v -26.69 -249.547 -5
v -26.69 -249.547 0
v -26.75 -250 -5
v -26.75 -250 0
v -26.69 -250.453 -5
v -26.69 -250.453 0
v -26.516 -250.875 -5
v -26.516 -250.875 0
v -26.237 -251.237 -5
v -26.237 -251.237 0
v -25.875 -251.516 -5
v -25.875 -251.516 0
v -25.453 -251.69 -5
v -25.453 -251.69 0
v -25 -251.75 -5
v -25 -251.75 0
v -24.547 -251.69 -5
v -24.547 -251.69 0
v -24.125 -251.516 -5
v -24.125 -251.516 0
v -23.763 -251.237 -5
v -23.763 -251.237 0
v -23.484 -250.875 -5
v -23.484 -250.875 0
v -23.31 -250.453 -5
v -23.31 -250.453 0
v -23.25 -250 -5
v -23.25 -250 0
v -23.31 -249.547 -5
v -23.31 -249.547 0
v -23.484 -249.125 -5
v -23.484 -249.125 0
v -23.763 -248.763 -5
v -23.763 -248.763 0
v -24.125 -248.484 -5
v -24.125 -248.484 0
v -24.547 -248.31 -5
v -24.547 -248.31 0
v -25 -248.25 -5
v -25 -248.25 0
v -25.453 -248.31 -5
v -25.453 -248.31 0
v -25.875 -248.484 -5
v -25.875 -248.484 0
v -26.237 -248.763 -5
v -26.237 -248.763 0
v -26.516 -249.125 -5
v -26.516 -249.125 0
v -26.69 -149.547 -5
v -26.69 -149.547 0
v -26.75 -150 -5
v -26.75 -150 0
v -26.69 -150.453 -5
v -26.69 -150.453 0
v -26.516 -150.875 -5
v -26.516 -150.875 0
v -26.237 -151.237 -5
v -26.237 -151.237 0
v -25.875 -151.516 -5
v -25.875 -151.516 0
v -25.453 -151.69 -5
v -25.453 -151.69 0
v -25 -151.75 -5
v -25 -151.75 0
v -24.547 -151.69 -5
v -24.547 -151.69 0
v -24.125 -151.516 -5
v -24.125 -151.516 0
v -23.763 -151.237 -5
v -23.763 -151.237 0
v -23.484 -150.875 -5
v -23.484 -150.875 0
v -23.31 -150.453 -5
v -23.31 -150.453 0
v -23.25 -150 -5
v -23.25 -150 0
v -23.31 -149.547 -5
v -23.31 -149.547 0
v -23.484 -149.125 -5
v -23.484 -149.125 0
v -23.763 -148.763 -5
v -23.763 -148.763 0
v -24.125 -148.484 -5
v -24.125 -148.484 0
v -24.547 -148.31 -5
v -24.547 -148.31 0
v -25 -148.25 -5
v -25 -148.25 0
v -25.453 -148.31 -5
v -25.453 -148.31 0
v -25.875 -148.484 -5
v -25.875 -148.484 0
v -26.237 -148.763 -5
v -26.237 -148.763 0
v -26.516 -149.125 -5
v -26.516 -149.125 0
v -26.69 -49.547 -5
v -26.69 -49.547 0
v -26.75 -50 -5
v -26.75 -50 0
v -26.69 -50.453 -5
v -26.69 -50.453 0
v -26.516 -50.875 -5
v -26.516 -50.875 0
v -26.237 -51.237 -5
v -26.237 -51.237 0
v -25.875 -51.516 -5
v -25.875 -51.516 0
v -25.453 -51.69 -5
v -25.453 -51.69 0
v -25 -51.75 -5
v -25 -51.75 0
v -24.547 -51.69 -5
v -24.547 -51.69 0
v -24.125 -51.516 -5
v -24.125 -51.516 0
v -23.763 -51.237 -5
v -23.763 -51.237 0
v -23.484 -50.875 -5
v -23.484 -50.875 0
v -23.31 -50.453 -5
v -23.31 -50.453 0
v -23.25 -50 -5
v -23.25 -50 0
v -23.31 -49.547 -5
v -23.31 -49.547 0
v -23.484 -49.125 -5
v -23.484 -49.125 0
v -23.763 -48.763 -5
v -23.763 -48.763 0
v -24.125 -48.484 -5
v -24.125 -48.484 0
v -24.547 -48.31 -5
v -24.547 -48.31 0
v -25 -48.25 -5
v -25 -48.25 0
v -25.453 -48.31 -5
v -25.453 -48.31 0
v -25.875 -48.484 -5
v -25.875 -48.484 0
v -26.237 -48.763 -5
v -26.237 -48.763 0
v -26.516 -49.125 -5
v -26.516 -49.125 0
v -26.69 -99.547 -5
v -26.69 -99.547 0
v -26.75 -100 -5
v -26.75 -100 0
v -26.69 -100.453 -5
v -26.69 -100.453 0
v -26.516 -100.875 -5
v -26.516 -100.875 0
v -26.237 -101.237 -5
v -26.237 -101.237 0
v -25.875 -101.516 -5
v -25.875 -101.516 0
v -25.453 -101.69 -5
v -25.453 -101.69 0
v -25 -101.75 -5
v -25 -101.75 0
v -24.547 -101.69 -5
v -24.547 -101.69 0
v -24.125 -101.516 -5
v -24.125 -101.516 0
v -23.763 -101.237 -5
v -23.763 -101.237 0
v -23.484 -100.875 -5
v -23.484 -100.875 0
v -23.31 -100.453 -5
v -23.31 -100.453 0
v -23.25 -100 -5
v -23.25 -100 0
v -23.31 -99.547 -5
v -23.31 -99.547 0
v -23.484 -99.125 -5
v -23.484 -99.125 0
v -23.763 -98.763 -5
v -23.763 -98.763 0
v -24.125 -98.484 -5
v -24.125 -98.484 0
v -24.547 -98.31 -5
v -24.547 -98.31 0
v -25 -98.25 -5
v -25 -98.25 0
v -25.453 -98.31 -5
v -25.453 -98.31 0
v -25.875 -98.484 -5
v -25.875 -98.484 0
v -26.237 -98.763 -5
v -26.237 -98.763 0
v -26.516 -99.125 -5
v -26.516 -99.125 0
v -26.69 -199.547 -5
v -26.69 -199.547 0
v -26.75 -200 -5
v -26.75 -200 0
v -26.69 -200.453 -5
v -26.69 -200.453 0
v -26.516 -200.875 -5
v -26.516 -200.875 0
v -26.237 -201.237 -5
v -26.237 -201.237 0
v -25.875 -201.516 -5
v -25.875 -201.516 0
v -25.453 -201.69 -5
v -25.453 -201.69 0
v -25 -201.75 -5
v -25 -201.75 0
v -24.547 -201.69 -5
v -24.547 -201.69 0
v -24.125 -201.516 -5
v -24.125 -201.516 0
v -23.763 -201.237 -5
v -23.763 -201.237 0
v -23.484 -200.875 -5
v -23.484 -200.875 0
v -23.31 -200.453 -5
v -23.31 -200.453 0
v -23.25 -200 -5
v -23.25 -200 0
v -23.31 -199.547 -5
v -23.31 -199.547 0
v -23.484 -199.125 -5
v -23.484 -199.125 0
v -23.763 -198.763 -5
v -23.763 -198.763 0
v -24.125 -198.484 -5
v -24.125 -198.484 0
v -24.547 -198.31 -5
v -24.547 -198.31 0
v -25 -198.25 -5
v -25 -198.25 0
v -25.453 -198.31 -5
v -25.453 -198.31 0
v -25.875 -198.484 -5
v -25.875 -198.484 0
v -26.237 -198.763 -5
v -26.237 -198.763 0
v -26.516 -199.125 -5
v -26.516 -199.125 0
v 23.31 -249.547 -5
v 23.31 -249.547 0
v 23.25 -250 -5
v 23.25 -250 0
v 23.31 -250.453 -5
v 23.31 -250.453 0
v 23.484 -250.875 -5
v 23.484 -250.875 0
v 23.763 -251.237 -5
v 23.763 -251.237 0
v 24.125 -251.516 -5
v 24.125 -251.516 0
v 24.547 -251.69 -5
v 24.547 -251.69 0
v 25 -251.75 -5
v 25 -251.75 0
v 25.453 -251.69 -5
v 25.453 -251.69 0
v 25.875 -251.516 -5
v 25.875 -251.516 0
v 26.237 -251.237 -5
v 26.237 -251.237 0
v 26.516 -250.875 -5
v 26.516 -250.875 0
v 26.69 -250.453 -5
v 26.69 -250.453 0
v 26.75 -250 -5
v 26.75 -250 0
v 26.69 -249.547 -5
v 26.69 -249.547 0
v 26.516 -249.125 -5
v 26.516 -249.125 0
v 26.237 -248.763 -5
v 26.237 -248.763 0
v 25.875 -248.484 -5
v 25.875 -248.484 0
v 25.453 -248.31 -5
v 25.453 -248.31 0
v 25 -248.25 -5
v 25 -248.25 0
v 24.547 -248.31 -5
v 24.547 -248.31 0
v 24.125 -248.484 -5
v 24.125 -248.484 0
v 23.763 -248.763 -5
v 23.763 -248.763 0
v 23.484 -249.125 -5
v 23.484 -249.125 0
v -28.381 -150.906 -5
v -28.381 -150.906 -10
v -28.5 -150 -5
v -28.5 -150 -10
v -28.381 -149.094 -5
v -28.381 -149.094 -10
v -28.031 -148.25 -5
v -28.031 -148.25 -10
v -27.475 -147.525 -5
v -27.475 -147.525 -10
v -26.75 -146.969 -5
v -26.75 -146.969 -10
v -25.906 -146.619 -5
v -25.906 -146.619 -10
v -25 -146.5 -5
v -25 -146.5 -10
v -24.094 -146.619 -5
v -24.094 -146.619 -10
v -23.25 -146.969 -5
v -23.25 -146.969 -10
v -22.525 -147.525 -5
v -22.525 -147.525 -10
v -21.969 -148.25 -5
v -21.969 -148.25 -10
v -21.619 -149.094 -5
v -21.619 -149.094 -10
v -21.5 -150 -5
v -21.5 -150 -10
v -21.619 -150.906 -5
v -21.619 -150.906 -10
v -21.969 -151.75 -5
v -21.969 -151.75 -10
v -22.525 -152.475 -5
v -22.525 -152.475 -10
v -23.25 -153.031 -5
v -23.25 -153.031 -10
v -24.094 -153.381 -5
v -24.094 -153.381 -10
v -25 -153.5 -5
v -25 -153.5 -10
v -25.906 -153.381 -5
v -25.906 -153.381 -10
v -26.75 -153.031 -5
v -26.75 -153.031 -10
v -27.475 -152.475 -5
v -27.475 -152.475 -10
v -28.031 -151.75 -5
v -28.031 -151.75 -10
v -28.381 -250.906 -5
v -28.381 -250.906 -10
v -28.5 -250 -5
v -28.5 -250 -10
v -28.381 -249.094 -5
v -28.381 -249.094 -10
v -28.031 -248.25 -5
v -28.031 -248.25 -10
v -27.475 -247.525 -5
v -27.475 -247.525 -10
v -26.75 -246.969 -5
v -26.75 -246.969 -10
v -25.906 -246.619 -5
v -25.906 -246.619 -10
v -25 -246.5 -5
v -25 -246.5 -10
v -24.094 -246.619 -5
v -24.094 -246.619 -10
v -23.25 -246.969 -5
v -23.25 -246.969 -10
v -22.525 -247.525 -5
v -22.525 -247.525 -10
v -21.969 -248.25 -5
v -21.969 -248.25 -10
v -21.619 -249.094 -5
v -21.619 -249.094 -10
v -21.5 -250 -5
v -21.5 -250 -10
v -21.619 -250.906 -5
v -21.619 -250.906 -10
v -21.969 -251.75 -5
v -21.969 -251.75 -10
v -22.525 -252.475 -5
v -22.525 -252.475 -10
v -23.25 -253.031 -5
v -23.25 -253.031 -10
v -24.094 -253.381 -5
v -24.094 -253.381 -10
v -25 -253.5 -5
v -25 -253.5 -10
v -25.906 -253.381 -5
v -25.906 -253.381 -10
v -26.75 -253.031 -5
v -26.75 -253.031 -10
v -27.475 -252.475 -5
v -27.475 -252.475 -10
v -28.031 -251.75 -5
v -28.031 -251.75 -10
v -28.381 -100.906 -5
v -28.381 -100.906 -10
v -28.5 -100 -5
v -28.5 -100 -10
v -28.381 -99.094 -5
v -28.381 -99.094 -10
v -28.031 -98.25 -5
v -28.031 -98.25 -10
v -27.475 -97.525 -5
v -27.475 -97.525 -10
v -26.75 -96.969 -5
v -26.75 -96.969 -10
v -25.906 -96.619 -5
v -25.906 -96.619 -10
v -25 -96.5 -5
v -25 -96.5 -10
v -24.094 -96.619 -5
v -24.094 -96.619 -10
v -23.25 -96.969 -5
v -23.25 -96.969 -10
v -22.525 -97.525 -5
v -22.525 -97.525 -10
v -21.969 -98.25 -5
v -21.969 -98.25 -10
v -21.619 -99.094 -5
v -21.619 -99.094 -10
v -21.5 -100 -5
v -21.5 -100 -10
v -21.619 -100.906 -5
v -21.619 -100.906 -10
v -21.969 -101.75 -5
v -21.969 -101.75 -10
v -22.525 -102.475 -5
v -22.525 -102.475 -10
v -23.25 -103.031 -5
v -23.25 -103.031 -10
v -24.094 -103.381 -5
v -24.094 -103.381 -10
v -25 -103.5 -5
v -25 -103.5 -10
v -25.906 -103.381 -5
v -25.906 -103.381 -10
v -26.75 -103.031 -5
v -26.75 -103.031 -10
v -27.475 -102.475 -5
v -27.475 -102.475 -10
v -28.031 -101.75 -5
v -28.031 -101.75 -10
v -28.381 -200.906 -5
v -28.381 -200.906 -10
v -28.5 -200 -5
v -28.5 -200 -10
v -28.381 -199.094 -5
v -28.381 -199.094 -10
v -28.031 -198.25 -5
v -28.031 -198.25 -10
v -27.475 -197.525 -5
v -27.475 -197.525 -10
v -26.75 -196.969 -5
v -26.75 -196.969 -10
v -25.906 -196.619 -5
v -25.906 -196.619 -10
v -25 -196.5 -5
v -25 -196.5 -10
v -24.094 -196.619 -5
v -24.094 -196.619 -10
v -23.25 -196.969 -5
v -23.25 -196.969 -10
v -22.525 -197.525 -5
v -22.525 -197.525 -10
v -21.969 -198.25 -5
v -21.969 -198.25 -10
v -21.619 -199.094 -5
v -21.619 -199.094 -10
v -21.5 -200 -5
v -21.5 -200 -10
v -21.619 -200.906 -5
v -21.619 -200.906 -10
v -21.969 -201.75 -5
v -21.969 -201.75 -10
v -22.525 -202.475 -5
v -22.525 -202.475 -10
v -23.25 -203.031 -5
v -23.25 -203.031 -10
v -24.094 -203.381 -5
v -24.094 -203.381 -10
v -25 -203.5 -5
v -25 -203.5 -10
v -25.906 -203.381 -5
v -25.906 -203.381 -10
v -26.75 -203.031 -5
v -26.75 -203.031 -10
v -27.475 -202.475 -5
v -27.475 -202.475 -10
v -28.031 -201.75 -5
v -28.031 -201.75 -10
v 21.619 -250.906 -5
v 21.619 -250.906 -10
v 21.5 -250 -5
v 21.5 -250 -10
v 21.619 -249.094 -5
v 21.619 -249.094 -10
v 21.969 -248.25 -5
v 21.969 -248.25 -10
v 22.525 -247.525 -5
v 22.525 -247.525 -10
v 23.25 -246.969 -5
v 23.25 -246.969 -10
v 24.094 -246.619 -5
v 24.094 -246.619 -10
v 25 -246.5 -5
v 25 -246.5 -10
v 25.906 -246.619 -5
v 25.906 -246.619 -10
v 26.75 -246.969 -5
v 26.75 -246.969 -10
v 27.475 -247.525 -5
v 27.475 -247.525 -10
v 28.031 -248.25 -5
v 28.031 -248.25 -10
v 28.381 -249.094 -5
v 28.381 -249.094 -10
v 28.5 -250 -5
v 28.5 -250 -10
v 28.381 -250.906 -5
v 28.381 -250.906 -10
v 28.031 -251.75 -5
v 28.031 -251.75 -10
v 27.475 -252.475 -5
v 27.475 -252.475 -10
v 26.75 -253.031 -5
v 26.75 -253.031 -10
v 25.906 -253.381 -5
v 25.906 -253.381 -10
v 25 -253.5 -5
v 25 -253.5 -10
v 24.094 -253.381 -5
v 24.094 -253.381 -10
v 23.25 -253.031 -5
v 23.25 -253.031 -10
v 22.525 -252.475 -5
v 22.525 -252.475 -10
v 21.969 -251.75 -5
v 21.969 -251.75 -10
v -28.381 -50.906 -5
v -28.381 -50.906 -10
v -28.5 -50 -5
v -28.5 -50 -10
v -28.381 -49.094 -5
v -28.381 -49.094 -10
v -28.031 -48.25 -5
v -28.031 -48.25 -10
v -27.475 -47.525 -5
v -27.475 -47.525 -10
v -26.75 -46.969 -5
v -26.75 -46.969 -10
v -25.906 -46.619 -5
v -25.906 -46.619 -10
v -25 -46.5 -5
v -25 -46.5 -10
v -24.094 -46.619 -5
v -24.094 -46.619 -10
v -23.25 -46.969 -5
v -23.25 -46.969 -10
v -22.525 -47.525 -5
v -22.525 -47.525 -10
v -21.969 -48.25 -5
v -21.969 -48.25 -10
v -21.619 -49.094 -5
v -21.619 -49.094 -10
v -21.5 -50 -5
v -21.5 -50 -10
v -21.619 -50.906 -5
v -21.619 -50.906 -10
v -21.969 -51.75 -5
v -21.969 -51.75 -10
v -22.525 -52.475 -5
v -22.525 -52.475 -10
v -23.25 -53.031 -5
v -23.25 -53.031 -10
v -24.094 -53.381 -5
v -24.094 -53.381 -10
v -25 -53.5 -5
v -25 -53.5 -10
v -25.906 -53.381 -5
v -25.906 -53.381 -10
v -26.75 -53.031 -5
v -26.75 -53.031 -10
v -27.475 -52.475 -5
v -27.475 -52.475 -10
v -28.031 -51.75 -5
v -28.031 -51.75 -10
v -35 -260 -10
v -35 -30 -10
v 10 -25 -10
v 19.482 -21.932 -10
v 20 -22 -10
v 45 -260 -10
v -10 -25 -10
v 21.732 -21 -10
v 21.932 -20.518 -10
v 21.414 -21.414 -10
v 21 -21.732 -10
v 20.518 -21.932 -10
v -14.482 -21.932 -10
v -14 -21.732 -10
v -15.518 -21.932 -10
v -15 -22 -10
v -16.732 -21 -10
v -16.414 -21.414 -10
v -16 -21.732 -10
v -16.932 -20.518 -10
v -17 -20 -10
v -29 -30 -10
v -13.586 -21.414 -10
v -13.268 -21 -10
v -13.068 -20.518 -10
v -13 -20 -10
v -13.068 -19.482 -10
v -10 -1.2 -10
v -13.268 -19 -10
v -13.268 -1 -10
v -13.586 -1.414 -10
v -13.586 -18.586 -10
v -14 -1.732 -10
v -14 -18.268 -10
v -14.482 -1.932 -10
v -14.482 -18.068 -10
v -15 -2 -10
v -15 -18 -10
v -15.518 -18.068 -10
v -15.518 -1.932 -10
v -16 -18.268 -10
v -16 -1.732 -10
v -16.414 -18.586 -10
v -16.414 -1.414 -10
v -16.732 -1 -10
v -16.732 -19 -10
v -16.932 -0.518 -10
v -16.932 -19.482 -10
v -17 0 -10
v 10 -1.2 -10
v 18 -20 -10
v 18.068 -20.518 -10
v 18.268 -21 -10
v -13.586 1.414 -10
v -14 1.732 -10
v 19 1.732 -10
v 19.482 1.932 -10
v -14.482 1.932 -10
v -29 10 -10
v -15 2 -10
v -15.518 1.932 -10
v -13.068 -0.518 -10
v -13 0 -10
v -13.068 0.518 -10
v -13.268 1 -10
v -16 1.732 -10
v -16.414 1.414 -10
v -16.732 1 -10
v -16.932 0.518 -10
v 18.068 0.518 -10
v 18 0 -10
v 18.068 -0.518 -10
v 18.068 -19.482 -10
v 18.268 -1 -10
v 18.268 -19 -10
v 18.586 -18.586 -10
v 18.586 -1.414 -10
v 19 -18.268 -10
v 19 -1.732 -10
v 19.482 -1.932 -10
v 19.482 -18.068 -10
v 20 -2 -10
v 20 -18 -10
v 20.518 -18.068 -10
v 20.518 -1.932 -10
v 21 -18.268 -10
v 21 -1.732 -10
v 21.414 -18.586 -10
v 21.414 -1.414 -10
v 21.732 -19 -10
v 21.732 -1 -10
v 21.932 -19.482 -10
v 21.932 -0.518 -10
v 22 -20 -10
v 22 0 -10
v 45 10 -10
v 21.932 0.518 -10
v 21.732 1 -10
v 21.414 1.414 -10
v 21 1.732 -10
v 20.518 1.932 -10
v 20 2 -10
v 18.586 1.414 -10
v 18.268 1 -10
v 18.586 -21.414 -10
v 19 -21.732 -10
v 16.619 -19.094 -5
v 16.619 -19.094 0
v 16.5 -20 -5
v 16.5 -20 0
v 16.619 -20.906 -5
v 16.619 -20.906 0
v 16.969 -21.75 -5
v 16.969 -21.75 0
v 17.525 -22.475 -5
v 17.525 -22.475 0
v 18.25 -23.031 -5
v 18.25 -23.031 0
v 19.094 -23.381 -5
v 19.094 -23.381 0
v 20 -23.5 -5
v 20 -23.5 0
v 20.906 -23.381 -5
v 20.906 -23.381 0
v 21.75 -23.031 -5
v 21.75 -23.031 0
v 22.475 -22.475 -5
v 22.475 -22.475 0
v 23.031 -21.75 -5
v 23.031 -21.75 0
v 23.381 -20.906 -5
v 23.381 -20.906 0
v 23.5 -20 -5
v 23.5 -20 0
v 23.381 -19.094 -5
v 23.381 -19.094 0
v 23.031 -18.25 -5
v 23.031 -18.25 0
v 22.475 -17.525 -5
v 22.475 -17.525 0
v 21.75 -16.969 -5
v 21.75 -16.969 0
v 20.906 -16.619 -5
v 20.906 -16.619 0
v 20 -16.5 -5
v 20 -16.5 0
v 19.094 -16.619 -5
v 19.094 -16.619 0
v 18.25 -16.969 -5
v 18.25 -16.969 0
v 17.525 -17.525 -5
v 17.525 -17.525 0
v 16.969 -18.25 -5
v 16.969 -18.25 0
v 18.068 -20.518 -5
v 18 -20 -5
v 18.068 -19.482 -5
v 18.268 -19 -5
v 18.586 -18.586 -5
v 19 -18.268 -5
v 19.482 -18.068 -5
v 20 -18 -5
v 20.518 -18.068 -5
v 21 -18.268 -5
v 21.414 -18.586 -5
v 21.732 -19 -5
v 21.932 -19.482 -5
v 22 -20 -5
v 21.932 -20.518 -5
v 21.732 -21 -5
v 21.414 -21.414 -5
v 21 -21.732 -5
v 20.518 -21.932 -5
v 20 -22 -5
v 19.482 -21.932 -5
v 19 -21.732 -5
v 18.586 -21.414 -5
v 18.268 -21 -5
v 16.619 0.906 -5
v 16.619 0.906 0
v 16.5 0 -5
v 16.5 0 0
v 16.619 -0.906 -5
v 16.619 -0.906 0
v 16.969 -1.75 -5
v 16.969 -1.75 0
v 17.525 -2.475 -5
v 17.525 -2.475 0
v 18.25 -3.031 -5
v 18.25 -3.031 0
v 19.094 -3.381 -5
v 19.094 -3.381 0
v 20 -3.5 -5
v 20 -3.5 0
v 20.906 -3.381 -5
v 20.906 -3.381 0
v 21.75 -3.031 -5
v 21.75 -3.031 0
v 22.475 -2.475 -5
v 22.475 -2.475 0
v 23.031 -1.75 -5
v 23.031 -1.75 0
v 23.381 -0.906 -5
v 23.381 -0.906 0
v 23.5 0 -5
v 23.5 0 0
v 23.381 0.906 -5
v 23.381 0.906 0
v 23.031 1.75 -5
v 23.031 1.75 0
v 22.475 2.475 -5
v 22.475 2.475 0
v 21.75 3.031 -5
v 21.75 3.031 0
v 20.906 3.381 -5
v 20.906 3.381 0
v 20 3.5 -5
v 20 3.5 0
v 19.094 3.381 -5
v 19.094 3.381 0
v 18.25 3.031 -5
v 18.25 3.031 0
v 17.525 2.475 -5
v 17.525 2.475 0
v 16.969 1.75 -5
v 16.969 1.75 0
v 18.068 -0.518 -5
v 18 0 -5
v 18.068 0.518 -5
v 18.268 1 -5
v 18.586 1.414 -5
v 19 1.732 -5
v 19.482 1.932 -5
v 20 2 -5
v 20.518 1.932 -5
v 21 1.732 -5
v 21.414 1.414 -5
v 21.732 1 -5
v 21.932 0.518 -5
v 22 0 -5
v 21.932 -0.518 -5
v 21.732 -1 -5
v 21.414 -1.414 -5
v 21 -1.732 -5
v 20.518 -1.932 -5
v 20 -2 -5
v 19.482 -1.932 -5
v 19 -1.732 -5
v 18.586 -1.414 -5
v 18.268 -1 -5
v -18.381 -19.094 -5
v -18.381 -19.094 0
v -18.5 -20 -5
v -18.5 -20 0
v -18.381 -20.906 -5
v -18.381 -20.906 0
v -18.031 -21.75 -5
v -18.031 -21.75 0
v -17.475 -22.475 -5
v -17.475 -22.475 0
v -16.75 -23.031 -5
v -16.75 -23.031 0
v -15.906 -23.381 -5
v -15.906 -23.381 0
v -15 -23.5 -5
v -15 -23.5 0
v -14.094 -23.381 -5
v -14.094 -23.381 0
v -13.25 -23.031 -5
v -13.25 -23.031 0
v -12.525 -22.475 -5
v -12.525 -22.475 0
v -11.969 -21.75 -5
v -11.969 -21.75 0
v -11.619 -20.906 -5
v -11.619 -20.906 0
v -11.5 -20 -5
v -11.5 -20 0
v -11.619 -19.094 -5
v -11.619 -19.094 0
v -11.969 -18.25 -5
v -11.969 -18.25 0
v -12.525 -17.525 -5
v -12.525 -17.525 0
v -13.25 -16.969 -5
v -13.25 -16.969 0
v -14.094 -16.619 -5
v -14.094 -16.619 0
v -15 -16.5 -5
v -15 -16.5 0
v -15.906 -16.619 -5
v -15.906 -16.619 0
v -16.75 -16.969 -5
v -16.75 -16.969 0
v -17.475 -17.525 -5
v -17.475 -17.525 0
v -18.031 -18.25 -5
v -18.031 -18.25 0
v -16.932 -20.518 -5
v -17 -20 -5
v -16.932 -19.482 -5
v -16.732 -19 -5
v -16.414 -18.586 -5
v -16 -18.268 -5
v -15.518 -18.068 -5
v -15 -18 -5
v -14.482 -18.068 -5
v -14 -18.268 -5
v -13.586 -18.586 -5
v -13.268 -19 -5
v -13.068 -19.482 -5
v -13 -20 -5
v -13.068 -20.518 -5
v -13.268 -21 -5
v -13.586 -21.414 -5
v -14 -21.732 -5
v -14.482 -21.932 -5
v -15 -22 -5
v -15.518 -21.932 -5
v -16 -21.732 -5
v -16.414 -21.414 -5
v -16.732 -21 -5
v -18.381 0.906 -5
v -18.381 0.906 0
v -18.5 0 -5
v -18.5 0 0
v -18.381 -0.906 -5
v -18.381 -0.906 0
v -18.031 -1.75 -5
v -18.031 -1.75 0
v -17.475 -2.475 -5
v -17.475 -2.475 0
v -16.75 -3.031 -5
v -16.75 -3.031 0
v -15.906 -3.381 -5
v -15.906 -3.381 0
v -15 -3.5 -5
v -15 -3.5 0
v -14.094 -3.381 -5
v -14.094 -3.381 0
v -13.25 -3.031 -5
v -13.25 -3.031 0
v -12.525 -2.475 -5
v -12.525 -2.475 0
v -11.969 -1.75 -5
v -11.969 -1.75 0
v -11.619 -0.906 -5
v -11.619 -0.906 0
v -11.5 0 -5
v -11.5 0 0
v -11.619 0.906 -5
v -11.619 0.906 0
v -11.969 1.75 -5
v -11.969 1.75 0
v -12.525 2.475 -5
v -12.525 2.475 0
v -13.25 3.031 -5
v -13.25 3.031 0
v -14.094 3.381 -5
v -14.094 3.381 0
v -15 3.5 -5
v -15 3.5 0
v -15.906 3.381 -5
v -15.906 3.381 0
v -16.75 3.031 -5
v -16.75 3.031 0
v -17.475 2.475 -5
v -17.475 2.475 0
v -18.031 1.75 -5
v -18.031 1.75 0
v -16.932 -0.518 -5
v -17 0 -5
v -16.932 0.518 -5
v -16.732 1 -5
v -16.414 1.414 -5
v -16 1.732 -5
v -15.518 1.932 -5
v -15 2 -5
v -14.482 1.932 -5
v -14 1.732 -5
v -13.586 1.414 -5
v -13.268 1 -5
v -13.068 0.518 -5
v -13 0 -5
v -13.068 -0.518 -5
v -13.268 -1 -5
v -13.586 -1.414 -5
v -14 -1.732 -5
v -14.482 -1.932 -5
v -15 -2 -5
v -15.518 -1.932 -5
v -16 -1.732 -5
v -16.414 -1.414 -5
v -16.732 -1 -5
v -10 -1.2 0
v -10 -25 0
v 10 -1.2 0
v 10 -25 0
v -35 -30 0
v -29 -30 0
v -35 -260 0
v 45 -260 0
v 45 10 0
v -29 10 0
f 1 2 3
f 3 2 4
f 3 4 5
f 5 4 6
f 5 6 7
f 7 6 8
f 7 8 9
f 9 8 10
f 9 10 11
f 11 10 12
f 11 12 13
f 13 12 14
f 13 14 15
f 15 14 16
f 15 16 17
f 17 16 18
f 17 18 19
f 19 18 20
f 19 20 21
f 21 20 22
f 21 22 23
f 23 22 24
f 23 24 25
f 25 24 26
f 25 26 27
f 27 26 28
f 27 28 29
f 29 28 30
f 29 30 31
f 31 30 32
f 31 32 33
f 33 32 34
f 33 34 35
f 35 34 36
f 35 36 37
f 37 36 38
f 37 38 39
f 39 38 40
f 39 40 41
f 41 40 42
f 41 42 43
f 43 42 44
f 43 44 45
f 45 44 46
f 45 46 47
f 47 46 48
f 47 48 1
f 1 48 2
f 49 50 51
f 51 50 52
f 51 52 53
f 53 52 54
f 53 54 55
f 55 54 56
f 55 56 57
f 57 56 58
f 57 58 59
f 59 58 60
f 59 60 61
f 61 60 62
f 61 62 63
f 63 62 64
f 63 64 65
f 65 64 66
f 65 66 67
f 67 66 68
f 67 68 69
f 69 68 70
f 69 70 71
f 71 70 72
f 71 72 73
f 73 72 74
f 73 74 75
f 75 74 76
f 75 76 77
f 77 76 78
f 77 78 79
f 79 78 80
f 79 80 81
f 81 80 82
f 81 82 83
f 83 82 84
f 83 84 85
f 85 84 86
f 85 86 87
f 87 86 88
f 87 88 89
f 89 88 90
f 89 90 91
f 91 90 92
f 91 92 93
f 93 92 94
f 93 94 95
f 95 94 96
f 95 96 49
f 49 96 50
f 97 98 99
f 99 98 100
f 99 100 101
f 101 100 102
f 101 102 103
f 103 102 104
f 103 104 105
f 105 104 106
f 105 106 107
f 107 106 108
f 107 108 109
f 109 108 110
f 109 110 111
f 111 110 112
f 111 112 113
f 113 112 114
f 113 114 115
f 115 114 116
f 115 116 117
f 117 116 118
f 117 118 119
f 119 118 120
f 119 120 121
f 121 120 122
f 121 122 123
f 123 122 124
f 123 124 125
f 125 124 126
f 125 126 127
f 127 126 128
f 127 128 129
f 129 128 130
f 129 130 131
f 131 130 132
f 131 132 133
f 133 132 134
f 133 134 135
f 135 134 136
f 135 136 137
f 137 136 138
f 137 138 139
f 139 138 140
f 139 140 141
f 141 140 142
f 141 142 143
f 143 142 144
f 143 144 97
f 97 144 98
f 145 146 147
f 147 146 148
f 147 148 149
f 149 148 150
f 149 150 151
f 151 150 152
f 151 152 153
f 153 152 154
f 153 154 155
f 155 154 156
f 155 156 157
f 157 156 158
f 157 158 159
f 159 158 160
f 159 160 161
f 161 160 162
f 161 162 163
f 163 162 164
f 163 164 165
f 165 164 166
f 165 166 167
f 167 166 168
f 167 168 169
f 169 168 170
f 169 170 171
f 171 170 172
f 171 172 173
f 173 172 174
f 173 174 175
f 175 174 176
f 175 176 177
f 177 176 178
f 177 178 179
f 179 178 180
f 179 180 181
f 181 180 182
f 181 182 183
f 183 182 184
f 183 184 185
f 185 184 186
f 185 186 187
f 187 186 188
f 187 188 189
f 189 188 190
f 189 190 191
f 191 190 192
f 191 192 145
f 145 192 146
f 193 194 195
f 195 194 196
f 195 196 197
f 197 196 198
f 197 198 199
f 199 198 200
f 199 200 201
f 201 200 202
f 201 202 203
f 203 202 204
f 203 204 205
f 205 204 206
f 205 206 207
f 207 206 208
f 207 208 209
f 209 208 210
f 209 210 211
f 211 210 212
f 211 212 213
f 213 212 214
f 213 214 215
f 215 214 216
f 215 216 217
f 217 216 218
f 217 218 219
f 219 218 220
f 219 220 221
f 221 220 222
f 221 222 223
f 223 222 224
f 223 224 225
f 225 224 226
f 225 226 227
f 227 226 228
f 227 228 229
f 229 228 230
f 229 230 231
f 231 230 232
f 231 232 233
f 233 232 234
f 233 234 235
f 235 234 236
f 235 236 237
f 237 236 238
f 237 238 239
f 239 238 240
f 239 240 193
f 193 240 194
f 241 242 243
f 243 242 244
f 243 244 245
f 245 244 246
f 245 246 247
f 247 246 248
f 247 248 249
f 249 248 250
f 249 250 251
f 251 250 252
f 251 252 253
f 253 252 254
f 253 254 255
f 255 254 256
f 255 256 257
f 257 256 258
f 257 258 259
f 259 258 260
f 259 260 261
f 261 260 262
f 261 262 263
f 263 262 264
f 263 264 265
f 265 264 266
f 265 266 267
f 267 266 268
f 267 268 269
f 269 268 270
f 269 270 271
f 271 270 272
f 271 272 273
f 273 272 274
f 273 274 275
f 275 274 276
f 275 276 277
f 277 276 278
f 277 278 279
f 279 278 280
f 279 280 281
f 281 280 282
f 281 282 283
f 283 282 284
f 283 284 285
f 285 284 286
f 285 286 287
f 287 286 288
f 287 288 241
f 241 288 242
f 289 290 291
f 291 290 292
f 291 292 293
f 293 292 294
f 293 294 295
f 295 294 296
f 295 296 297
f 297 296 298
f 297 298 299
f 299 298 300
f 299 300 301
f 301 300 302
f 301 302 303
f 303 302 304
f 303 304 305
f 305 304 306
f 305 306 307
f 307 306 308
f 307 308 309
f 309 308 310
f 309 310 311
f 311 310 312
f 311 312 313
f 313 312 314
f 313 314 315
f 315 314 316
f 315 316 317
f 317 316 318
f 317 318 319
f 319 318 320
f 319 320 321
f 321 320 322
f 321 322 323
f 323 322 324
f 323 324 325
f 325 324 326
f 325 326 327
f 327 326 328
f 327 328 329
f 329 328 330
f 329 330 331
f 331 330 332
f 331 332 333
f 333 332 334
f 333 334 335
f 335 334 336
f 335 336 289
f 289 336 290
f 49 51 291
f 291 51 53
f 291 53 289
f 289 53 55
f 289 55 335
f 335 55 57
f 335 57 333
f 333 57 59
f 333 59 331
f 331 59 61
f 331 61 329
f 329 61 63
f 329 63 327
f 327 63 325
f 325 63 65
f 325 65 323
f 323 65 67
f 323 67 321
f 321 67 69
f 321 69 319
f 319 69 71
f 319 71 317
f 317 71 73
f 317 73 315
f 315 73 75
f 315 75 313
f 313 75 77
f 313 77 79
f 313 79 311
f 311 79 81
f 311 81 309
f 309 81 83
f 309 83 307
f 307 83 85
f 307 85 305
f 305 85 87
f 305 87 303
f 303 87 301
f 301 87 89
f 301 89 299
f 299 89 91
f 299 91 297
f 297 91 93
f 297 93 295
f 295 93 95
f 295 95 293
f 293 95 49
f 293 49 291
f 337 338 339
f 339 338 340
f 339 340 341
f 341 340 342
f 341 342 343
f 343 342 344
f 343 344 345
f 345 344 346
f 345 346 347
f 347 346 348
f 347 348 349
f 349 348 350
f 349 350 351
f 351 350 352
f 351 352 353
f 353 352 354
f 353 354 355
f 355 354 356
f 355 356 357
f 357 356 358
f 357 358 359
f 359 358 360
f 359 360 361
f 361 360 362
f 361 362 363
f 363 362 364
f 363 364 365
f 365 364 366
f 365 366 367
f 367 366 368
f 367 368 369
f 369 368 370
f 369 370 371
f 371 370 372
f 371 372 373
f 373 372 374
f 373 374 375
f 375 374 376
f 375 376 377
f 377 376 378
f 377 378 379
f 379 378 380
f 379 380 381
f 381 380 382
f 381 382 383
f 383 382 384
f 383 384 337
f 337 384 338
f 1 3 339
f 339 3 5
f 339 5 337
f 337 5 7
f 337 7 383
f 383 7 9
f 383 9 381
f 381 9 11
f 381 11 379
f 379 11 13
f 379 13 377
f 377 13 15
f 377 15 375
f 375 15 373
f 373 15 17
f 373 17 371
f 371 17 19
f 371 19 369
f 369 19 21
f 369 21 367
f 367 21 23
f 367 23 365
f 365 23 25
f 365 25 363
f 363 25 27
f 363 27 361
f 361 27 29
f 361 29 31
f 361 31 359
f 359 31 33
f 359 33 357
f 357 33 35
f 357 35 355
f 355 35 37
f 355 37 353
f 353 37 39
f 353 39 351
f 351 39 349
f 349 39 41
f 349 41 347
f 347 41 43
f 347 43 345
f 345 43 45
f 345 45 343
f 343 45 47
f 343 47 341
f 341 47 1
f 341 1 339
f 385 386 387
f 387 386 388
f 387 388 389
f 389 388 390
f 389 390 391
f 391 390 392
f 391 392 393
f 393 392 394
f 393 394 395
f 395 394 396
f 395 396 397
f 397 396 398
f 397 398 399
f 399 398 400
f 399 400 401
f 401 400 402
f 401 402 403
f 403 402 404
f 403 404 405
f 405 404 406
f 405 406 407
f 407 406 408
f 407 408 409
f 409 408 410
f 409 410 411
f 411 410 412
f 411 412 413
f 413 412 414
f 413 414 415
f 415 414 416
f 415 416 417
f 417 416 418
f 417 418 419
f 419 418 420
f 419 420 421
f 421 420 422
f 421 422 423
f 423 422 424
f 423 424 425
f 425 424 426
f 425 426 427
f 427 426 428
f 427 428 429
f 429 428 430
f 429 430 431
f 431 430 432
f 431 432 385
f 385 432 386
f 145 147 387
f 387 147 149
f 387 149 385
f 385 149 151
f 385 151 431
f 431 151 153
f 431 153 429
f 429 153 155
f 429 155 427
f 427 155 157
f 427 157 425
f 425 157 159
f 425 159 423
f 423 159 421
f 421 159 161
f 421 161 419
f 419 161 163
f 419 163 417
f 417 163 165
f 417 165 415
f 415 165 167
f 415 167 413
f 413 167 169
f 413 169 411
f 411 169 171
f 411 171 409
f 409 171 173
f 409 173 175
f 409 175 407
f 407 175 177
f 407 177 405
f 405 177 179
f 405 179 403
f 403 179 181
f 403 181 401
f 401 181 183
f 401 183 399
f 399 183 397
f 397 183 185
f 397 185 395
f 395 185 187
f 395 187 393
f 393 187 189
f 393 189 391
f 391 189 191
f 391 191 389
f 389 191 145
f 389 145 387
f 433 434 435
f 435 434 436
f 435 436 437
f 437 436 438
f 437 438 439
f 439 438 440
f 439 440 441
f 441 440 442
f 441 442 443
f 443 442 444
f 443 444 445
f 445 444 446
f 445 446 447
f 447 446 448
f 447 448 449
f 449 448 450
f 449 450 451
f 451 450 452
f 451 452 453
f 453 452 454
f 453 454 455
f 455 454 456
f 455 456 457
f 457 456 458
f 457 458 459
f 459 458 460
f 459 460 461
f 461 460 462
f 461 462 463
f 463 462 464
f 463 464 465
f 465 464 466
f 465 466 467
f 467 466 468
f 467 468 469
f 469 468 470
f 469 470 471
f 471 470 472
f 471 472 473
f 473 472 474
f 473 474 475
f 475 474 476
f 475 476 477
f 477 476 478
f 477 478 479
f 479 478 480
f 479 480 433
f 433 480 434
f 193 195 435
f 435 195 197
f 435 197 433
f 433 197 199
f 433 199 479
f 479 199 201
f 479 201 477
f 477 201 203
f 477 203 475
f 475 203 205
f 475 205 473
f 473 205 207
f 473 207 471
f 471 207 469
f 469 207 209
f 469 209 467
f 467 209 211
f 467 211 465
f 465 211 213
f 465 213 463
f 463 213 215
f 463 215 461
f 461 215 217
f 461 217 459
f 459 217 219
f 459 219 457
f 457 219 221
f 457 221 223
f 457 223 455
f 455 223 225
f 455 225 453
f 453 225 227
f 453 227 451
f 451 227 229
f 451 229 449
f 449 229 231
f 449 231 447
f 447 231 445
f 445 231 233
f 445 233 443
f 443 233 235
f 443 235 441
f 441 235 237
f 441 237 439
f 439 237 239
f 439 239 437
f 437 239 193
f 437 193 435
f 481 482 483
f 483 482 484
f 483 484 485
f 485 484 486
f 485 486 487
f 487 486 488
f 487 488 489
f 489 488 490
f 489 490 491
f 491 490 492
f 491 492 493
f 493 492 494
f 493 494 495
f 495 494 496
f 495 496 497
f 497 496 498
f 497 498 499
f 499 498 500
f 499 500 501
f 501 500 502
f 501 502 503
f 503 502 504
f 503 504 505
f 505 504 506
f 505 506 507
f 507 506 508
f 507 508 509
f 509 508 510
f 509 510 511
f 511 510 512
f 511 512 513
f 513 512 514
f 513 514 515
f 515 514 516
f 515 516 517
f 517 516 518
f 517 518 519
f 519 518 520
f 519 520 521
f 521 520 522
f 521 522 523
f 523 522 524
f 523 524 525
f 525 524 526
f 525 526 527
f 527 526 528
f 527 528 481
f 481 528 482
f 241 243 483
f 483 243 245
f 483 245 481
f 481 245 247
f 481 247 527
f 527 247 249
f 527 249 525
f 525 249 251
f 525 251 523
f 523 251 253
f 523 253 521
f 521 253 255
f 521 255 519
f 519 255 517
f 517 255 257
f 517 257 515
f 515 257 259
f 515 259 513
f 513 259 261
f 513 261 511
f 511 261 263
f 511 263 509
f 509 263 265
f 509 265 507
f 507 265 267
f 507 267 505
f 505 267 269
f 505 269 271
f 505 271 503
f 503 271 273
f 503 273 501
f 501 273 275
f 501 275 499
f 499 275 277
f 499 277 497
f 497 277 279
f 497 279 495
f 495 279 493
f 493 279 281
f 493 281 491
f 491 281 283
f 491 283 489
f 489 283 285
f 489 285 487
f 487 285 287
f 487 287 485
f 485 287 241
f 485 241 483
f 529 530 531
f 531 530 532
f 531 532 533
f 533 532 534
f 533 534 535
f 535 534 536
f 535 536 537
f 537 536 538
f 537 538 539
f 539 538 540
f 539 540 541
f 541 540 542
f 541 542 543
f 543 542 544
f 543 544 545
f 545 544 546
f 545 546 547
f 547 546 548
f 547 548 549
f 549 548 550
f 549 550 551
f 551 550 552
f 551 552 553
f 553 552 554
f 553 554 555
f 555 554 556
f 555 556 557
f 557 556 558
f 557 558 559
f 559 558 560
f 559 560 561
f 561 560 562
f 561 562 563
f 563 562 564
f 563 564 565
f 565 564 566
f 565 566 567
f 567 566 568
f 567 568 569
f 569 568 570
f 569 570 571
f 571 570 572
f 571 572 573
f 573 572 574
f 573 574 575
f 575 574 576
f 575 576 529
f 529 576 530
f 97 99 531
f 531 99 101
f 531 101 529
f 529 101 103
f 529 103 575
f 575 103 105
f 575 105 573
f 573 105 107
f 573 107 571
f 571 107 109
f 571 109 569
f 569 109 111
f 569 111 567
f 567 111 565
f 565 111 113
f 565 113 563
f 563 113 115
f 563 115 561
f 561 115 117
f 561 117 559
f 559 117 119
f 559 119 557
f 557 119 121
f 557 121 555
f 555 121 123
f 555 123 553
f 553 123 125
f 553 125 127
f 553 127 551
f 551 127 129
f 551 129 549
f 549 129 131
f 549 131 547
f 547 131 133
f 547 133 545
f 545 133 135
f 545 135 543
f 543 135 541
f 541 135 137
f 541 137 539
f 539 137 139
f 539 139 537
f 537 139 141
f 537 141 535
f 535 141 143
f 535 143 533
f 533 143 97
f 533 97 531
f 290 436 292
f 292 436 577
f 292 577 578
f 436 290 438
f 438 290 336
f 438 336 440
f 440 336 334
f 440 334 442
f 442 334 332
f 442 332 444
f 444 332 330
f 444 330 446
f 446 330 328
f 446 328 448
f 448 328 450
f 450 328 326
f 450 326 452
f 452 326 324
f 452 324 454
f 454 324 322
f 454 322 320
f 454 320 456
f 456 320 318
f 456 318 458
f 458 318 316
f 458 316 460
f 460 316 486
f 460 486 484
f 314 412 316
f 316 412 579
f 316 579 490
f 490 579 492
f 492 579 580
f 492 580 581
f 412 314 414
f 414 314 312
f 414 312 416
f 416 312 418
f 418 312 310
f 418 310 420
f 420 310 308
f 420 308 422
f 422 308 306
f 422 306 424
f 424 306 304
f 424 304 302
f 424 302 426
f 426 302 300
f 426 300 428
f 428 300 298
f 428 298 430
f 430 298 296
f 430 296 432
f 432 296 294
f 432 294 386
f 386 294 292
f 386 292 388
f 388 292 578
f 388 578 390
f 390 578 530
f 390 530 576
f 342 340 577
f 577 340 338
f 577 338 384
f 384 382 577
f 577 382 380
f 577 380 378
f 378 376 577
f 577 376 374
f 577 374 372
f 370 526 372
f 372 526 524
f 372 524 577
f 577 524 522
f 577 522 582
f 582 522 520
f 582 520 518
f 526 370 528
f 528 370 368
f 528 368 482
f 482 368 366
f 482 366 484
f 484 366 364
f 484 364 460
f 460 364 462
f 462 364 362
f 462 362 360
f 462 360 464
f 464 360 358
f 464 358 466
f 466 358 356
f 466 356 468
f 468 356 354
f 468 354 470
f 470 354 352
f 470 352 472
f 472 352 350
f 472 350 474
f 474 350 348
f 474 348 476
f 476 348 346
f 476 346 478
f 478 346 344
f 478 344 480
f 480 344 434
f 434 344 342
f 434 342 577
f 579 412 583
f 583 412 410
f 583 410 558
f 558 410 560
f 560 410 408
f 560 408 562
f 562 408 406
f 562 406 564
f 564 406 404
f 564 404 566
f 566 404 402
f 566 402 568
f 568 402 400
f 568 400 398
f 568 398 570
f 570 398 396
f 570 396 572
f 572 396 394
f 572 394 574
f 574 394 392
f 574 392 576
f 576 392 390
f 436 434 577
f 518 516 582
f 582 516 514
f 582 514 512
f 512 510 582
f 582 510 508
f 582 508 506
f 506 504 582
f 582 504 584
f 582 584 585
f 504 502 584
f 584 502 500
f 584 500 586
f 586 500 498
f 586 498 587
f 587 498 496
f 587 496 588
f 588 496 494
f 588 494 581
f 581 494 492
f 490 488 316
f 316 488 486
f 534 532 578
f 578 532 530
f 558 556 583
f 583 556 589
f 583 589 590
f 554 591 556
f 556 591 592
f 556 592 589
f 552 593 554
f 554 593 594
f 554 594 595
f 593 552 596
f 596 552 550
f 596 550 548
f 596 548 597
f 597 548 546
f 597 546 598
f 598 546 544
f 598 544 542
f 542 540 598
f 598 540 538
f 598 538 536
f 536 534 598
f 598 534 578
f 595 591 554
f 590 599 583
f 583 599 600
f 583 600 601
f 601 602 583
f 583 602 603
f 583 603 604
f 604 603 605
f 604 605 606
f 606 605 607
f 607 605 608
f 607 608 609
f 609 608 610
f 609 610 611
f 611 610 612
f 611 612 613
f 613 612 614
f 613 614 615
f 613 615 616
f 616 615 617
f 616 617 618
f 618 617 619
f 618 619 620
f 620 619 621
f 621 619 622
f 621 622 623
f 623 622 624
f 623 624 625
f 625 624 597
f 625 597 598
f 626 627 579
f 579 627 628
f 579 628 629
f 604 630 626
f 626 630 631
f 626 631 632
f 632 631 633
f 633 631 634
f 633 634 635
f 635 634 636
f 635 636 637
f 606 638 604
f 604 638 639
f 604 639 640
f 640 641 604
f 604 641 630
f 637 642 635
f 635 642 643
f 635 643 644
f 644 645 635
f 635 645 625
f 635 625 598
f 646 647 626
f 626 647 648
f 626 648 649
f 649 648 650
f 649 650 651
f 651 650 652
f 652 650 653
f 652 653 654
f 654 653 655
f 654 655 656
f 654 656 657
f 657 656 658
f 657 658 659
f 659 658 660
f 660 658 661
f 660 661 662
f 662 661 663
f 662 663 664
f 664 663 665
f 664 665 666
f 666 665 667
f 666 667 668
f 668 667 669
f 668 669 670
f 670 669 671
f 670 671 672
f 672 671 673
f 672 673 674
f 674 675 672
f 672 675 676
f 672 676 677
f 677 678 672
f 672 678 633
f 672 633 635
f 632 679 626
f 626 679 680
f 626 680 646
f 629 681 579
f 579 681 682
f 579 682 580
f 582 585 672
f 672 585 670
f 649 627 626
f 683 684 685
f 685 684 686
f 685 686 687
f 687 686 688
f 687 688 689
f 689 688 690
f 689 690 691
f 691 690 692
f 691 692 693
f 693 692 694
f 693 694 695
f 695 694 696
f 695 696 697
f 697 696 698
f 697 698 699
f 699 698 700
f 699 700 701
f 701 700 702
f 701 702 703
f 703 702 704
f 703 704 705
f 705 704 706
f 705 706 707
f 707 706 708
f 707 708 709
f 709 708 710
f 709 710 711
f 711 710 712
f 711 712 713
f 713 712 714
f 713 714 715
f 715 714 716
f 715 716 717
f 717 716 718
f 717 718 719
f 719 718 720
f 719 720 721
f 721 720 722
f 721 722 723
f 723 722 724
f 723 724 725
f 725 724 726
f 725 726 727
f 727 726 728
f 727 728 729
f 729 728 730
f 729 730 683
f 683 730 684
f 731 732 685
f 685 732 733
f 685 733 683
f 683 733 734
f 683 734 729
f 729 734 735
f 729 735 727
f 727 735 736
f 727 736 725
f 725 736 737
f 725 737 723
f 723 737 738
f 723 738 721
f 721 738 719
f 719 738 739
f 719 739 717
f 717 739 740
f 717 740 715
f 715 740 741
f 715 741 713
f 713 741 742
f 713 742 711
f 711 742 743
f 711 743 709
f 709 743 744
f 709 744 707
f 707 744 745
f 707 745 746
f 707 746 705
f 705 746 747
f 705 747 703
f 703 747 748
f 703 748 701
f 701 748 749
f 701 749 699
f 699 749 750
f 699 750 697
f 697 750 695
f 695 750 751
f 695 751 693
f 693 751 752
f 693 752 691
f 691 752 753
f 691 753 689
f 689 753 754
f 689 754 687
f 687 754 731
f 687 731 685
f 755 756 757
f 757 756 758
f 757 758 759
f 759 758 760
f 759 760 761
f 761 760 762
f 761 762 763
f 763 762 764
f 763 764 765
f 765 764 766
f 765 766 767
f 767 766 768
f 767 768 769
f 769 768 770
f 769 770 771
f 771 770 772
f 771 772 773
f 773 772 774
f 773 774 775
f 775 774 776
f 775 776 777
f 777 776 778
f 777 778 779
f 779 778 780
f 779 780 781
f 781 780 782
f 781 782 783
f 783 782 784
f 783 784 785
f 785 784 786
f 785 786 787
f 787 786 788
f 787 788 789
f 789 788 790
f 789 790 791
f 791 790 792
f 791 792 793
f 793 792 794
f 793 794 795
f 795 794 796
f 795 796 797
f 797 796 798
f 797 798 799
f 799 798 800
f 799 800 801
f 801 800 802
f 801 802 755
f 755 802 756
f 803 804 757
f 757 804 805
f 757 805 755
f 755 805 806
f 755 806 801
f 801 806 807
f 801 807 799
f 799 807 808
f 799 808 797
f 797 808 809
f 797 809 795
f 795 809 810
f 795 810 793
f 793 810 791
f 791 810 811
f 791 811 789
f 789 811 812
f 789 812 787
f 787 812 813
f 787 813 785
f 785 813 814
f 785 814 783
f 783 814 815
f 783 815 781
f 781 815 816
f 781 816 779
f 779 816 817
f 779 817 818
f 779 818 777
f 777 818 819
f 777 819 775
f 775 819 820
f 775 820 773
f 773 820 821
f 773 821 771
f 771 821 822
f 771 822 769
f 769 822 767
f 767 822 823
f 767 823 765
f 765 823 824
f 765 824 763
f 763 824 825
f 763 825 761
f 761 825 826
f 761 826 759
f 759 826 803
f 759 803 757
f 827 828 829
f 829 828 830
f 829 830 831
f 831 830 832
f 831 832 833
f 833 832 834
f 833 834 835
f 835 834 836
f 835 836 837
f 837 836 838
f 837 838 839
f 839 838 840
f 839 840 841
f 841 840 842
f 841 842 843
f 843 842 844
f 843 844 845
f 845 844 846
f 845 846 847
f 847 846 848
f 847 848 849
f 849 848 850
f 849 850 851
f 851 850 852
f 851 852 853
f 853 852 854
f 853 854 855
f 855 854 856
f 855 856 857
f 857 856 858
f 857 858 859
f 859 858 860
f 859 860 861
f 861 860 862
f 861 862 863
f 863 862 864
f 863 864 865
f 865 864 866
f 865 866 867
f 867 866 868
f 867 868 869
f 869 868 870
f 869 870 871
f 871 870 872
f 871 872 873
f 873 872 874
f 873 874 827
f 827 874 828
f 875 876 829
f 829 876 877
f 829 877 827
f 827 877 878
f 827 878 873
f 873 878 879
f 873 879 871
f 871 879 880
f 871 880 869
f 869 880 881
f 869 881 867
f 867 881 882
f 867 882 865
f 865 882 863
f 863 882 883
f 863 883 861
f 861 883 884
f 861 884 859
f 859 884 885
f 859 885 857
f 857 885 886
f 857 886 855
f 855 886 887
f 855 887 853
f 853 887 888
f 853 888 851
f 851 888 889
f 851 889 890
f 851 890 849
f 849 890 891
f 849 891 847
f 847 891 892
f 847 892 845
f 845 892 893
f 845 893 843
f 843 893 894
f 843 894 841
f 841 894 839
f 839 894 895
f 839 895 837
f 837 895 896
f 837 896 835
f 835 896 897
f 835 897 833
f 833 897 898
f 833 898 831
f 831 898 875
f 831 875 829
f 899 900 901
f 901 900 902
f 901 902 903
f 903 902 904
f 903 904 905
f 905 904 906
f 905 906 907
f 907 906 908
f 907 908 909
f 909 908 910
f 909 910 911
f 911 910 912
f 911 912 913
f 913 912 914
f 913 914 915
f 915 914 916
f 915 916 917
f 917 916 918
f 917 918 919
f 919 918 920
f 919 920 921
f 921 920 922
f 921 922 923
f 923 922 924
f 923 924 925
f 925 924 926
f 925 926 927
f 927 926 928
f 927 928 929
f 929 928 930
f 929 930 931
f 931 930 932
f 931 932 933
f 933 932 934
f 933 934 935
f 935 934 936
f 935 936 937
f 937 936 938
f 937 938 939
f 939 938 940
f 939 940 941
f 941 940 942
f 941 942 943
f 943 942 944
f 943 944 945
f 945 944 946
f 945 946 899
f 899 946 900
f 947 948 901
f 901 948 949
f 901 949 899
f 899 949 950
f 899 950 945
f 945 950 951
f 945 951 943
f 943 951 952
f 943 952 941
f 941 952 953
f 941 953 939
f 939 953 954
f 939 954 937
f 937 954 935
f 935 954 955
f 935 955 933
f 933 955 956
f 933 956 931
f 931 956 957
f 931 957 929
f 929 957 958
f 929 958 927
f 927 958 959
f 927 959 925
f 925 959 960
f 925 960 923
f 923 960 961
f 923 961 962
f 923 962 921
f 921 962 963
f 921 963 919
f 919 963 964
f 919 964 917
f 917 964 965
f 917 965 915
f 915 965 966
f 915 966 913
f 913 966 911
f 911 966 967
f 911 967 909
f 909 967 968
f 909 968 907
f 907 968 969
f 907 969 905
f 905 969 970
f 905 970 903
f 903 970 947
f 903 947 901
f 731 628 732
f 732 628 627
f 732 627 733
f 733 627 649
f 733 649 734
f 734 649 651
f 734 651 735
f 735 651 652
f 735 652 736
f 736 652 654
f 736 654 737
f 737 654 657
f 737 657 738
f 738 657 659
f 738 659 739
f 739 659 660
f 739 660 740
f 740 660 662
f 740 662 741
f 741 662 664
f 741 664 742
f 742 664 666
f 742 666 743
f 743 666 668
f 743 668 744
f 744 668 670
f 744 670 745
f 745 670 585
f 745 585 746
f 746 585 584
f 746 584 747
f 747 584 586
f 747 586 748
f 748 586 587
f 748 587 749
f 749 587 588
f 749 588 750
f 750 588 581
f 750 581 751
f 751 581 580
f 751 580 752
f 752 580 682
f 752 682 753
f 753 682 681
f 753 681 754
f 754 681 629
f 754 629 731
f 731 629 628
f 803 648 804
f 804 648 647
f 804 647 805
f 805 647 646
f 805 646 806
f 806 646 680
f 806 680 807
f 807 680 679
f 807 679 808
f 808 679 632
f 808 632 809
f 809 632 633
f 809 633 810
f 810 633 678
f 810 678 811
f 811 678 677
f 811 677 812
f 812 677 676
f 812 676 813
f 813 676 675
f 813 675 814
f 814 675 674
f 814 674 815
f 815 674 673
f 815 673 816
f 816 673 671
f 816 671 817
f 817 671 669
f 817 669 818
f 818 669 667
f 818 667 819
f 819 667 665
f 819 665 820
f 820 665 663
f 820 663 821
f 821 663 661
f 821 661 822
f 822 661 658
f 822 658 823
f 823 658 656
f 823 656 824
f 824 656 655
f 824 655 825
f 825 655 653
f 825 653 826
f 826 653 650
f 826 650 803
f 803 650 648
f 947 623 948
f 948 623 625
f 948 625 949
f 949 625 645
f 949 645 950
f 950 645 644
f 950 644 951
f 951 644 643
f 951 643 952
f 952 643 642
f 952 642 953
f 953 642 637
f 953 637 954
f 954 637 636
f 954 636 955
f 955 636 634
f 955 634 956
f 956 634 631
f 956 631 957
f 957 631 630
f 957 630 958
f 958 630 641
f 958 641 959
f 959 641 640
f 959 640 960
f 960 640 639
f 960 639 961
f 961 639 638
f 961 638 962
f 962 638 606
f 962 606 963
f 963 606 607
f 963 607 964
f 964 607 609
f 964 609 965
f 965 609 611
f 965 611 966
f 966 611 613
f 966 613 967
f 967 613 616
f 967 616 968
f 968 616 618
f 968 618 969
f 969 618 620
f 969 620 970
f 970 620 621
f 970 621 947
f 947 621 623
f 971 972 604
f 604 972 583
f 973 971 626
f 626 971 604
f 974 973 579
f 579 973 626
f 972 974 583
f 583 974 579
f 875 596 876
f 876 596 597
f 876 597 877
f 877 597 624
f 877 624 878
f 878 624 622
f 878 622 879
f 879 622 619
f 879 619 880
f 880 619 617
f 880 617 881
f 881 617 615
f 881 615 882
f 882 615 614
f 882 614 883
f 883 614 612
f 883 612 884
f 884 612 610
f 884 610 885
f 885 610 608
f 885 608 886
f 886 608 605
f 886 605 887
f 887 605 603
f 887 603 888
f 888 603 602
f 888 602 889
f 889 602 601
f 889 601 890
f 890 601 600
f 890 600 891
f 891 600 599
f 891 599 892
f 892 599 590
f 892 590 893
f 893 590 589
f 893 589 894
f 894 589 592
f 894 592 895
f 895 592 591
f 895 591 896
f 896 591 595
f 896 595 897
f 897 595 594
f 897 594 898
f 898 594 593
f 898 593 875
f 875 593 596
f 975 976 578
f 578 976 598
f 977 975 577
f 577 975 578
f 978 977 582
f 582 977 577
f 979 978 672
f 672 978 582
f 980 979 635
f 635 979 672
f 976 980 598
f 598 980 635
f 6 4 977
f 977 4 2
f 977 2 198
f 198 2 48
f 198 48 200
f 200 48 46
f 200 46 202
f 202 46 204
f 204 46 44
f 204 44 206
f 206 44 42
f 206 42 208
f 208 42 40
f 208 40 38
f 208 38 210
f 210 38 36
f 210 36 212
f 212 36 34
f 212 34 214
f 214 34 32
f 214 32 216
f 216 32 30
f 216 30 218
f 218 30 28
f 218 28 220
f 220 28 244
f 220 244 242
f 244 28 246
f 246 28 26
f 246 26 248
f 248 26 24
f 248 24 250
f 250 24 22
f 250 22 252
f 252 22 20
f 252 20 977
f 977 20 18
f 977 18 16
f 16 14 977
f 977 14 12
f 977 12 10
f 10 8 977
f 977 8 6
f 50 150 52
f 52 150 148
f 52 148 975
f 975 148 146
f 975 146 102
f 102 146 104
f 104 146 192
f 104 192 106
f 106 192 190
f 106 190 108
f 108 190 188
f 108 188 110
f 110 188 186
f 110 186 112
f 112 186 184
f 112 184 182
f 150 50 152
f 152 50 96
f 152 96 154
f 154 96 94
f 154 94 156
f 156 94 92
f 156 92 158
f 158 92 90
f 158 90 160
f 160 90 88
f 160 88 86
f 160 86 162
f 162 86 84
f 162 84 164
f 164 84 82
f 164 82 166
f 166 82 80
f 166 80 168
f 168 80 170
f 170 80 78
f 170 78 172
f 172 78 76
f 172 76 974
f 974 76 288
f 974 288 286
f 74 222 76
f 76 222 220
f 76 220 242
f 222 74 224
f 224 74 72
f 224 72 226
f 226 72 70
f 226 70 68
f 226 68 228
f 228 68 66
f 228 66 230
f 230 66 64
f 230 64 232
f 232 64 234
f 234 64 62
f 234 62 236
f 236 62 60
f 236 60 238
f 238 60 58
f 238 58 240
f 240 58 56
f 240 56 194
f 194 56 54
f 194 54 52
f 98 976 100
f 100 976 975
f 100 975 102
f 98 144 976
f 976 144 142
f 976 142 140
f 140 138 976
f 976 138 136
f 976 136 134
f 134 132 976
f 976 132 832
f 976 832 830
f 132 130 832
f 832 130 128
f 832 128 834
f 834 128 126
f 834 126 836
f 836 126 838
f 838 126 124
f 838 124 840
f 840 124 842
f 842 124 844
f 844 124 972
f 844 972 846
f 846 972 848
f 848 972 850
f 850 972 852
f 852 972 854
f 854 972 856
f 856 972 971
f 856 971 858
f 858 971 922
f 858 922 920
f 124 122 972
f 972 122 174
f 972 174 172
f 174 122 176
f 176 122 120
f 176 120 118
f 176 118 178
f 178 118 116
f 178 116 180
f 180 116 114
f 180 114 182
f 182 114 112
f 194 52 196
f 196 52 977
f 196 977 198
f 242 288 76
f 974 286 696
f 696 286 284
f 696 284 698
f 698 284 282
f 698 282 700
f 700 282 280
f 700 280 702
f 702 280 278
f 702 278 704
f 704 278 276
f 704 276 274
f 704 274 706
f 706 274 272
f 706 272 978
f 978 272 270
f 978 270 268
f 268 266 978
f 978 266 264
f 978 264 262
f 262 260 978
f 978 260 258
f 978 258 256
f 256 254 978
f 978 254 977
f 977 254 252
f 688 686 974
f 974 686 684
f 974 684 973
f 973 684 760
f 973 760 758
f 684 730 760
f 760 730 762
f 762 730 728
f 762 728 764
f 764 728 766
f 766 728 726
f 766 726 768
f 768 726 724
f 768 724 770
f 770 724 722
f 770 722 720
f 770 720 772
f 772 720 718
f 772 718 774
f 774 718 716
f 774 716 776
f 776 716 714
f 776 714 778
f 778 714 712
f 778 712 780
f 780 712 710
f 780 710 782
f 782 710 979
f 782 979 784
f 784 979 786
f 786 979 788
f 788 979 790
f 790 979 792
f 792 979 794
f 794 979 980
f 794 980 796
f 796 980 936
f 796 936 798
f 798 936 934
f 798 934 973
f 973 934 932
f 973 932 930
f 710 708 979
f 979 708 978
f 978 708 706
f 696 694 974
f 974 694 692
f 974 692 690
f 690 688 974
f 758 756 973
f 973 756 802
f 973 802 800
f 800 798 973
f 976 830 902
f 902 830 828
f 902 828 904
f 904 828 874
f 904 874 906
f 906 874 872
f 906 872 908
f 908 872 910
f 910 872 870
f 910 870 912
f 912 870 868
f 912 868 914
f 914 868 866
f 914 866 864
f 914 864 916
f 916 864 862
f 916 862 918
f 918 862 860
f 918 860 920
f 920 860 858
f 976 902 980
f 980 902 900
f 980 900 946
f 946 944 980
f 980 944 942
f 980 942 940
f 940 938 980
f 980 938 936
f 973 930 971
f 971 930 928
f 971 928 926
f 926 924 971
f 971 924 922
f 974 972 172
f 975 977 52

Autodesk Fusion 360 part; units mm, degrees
sketch "Szkic1" plane through (0, 0, 0) normal (0, 0, 1) x (1, 0, 0)
  line L0 (-29, -30) -> (-29, 10)
  line L1 (31, -30) -> (-29, -30)
  line L2 (31, 10) -> (31, -30)
  line L3 (-29, 10) -> (31, 10)
  line L4 (10, -25) -> (10, -1.2)
  line L5 (10, -1.2) -> (-10, -1.2)
  line L6 (-10, -1.2) -> (-10, -25)
  line L7 (-10, -25) -> (10, -25)
  circle A0 centre (20, -20) radius 2
  circle A1 centre (20, 0) radius 2
  circle A2 centre (-15, 0) radius 2
  circle A3 centre (-15, -20) radius 2
  line L8 (-29, 10) -> (-29, -30)
  line L9 (-29, -30) -> (-35, -30)
  line L10 (-35, -30) -> (-35, 10)
  line L11 (-35, 10) -> (-29, 10)
  line L12 (31, 10) -> (31, -30)
  line L13 (31, -30) -> (45, -30)
  line L14 (45, -30) -> (45, 10)
  line L15 (45, 10) -> (31, 10)
  line L16 (45, -30) -> (45, -260)
  line L17 (-35, -30) -> (-35, -260)
  line L18 (-35, -260) -> (45, -260)
  circle A4 centre (-15, -20) radius 3.5
  circle A5 centre (-15, 0) radius 3.5
  circle A6 centre (20, 0) radius 3.5
  circle A7 centre (20, -20) radius 3.5
  dimension "d1" = 4
  dimension "d2" = 4
  dimension "d3" = 4
  dimension "d4" = 4
  dimension "d5" = 6
  dimension "d6" = 14
  dimension "d7" = 230
  dimension "d8" = 230
  dimension "d9" = 7
  dimension "d10" = 7
  dimension "d11" = 7
  dimension "d12" = 7
extrude "Wyciągnięcie proste1" add sketch "Szkic1" against normal blind 10 contours L0 L1 L2 L3 L8 L12 | L1 L9 L13 L16 L17 L18 | L2 L12 L13 L14 L15 | A4 | A5 | A6 | A7
extrude "Wyciągnięcie proste2" cut sketch "Szkic1" against normal blind 5 contours A4 | A5 | A6 | A7
sketch "Szkic2" plane through (0, 0, -10) normal (0, 0, -1) x (1, 0, 0)
  circle A0 centre (-15, 20) radius 2
  line L0 (-10, 25) -> (10, 25)
  line L1 (10, 25) -> (10, 1.2)
  line L2 (10, 1.2) -> (-10, 1.2)
  line L3 (-10, 1.2) -> (-10, 25)
  circle A1 centre (-15, 0) radius 2
  circle A2 centre (20, 0) radius 2
  circle A3 centre (20, 20) radius 2
  line L4 (-29, 30) -> (-29, -10)
  line L5 (-29, -10) -> (45, -10)
  line L6 (45, -10) -> (45, 260)
  line L7 (45, 260) -> (-35, 260)
  line L8 (-35, 260) -> (-35, 30)
  line L9 (-35, 30) -> (-29, 30)
  circle A4 centre (-25, 250) radius 1.75
  circle A5 centre (25, 250) radius 1.75
  circle A6 centre (-25, 200) radius 1.75
  circle A7 centre (-25, 150) radius 1.75
  circle A8 centre (-25, 100) radius 1.75
  circle A9 centre (-25, 50) radius 1.75
  circle A10 centre (-25, 250) radius 3.5
  circle A11 centre (25, 250) radius 3.5
  circle A12 centre (-25, 200) radius 3.5
  circle A13 centre (-25, 150) radius 3.5
  circle A14 centre (-25, 100) radius 3.5
  circle A15 centre (-25, 50) radius 3.5
  dimension "d17" = 3.5
  dimension "d18" = 3.5
  dimension "d19" = 3.5
  dimension "d20" = 3.5
  dimension "d21" = 3.5
  dimension "d22" = 3.5
  dimension "d23" = 7
  dimension "d24" = 7
  dimension "d25" = 7
  dimension "d26" = 7
  dimension "d27" = 7
  dimension "d28" = 7
extrude "Wyciągnięcie proste3" cut sketch "Szkic2" against normal blind 5 contours A10 | A11 | A12 | A13 | A14 | A15
extrude "Wyciągnięcie proste4" cut 6 faces at (-24.8702, -50.5687, -10) (-24.6044, -99.1189, -10) (-26.2448, -149.6385, -10) (-24.3128, -199.6032, -10) (-25.3003, -250.543, -10) (24.301, -249.4674, -10) along direction (0, 0, 1) blind 10
